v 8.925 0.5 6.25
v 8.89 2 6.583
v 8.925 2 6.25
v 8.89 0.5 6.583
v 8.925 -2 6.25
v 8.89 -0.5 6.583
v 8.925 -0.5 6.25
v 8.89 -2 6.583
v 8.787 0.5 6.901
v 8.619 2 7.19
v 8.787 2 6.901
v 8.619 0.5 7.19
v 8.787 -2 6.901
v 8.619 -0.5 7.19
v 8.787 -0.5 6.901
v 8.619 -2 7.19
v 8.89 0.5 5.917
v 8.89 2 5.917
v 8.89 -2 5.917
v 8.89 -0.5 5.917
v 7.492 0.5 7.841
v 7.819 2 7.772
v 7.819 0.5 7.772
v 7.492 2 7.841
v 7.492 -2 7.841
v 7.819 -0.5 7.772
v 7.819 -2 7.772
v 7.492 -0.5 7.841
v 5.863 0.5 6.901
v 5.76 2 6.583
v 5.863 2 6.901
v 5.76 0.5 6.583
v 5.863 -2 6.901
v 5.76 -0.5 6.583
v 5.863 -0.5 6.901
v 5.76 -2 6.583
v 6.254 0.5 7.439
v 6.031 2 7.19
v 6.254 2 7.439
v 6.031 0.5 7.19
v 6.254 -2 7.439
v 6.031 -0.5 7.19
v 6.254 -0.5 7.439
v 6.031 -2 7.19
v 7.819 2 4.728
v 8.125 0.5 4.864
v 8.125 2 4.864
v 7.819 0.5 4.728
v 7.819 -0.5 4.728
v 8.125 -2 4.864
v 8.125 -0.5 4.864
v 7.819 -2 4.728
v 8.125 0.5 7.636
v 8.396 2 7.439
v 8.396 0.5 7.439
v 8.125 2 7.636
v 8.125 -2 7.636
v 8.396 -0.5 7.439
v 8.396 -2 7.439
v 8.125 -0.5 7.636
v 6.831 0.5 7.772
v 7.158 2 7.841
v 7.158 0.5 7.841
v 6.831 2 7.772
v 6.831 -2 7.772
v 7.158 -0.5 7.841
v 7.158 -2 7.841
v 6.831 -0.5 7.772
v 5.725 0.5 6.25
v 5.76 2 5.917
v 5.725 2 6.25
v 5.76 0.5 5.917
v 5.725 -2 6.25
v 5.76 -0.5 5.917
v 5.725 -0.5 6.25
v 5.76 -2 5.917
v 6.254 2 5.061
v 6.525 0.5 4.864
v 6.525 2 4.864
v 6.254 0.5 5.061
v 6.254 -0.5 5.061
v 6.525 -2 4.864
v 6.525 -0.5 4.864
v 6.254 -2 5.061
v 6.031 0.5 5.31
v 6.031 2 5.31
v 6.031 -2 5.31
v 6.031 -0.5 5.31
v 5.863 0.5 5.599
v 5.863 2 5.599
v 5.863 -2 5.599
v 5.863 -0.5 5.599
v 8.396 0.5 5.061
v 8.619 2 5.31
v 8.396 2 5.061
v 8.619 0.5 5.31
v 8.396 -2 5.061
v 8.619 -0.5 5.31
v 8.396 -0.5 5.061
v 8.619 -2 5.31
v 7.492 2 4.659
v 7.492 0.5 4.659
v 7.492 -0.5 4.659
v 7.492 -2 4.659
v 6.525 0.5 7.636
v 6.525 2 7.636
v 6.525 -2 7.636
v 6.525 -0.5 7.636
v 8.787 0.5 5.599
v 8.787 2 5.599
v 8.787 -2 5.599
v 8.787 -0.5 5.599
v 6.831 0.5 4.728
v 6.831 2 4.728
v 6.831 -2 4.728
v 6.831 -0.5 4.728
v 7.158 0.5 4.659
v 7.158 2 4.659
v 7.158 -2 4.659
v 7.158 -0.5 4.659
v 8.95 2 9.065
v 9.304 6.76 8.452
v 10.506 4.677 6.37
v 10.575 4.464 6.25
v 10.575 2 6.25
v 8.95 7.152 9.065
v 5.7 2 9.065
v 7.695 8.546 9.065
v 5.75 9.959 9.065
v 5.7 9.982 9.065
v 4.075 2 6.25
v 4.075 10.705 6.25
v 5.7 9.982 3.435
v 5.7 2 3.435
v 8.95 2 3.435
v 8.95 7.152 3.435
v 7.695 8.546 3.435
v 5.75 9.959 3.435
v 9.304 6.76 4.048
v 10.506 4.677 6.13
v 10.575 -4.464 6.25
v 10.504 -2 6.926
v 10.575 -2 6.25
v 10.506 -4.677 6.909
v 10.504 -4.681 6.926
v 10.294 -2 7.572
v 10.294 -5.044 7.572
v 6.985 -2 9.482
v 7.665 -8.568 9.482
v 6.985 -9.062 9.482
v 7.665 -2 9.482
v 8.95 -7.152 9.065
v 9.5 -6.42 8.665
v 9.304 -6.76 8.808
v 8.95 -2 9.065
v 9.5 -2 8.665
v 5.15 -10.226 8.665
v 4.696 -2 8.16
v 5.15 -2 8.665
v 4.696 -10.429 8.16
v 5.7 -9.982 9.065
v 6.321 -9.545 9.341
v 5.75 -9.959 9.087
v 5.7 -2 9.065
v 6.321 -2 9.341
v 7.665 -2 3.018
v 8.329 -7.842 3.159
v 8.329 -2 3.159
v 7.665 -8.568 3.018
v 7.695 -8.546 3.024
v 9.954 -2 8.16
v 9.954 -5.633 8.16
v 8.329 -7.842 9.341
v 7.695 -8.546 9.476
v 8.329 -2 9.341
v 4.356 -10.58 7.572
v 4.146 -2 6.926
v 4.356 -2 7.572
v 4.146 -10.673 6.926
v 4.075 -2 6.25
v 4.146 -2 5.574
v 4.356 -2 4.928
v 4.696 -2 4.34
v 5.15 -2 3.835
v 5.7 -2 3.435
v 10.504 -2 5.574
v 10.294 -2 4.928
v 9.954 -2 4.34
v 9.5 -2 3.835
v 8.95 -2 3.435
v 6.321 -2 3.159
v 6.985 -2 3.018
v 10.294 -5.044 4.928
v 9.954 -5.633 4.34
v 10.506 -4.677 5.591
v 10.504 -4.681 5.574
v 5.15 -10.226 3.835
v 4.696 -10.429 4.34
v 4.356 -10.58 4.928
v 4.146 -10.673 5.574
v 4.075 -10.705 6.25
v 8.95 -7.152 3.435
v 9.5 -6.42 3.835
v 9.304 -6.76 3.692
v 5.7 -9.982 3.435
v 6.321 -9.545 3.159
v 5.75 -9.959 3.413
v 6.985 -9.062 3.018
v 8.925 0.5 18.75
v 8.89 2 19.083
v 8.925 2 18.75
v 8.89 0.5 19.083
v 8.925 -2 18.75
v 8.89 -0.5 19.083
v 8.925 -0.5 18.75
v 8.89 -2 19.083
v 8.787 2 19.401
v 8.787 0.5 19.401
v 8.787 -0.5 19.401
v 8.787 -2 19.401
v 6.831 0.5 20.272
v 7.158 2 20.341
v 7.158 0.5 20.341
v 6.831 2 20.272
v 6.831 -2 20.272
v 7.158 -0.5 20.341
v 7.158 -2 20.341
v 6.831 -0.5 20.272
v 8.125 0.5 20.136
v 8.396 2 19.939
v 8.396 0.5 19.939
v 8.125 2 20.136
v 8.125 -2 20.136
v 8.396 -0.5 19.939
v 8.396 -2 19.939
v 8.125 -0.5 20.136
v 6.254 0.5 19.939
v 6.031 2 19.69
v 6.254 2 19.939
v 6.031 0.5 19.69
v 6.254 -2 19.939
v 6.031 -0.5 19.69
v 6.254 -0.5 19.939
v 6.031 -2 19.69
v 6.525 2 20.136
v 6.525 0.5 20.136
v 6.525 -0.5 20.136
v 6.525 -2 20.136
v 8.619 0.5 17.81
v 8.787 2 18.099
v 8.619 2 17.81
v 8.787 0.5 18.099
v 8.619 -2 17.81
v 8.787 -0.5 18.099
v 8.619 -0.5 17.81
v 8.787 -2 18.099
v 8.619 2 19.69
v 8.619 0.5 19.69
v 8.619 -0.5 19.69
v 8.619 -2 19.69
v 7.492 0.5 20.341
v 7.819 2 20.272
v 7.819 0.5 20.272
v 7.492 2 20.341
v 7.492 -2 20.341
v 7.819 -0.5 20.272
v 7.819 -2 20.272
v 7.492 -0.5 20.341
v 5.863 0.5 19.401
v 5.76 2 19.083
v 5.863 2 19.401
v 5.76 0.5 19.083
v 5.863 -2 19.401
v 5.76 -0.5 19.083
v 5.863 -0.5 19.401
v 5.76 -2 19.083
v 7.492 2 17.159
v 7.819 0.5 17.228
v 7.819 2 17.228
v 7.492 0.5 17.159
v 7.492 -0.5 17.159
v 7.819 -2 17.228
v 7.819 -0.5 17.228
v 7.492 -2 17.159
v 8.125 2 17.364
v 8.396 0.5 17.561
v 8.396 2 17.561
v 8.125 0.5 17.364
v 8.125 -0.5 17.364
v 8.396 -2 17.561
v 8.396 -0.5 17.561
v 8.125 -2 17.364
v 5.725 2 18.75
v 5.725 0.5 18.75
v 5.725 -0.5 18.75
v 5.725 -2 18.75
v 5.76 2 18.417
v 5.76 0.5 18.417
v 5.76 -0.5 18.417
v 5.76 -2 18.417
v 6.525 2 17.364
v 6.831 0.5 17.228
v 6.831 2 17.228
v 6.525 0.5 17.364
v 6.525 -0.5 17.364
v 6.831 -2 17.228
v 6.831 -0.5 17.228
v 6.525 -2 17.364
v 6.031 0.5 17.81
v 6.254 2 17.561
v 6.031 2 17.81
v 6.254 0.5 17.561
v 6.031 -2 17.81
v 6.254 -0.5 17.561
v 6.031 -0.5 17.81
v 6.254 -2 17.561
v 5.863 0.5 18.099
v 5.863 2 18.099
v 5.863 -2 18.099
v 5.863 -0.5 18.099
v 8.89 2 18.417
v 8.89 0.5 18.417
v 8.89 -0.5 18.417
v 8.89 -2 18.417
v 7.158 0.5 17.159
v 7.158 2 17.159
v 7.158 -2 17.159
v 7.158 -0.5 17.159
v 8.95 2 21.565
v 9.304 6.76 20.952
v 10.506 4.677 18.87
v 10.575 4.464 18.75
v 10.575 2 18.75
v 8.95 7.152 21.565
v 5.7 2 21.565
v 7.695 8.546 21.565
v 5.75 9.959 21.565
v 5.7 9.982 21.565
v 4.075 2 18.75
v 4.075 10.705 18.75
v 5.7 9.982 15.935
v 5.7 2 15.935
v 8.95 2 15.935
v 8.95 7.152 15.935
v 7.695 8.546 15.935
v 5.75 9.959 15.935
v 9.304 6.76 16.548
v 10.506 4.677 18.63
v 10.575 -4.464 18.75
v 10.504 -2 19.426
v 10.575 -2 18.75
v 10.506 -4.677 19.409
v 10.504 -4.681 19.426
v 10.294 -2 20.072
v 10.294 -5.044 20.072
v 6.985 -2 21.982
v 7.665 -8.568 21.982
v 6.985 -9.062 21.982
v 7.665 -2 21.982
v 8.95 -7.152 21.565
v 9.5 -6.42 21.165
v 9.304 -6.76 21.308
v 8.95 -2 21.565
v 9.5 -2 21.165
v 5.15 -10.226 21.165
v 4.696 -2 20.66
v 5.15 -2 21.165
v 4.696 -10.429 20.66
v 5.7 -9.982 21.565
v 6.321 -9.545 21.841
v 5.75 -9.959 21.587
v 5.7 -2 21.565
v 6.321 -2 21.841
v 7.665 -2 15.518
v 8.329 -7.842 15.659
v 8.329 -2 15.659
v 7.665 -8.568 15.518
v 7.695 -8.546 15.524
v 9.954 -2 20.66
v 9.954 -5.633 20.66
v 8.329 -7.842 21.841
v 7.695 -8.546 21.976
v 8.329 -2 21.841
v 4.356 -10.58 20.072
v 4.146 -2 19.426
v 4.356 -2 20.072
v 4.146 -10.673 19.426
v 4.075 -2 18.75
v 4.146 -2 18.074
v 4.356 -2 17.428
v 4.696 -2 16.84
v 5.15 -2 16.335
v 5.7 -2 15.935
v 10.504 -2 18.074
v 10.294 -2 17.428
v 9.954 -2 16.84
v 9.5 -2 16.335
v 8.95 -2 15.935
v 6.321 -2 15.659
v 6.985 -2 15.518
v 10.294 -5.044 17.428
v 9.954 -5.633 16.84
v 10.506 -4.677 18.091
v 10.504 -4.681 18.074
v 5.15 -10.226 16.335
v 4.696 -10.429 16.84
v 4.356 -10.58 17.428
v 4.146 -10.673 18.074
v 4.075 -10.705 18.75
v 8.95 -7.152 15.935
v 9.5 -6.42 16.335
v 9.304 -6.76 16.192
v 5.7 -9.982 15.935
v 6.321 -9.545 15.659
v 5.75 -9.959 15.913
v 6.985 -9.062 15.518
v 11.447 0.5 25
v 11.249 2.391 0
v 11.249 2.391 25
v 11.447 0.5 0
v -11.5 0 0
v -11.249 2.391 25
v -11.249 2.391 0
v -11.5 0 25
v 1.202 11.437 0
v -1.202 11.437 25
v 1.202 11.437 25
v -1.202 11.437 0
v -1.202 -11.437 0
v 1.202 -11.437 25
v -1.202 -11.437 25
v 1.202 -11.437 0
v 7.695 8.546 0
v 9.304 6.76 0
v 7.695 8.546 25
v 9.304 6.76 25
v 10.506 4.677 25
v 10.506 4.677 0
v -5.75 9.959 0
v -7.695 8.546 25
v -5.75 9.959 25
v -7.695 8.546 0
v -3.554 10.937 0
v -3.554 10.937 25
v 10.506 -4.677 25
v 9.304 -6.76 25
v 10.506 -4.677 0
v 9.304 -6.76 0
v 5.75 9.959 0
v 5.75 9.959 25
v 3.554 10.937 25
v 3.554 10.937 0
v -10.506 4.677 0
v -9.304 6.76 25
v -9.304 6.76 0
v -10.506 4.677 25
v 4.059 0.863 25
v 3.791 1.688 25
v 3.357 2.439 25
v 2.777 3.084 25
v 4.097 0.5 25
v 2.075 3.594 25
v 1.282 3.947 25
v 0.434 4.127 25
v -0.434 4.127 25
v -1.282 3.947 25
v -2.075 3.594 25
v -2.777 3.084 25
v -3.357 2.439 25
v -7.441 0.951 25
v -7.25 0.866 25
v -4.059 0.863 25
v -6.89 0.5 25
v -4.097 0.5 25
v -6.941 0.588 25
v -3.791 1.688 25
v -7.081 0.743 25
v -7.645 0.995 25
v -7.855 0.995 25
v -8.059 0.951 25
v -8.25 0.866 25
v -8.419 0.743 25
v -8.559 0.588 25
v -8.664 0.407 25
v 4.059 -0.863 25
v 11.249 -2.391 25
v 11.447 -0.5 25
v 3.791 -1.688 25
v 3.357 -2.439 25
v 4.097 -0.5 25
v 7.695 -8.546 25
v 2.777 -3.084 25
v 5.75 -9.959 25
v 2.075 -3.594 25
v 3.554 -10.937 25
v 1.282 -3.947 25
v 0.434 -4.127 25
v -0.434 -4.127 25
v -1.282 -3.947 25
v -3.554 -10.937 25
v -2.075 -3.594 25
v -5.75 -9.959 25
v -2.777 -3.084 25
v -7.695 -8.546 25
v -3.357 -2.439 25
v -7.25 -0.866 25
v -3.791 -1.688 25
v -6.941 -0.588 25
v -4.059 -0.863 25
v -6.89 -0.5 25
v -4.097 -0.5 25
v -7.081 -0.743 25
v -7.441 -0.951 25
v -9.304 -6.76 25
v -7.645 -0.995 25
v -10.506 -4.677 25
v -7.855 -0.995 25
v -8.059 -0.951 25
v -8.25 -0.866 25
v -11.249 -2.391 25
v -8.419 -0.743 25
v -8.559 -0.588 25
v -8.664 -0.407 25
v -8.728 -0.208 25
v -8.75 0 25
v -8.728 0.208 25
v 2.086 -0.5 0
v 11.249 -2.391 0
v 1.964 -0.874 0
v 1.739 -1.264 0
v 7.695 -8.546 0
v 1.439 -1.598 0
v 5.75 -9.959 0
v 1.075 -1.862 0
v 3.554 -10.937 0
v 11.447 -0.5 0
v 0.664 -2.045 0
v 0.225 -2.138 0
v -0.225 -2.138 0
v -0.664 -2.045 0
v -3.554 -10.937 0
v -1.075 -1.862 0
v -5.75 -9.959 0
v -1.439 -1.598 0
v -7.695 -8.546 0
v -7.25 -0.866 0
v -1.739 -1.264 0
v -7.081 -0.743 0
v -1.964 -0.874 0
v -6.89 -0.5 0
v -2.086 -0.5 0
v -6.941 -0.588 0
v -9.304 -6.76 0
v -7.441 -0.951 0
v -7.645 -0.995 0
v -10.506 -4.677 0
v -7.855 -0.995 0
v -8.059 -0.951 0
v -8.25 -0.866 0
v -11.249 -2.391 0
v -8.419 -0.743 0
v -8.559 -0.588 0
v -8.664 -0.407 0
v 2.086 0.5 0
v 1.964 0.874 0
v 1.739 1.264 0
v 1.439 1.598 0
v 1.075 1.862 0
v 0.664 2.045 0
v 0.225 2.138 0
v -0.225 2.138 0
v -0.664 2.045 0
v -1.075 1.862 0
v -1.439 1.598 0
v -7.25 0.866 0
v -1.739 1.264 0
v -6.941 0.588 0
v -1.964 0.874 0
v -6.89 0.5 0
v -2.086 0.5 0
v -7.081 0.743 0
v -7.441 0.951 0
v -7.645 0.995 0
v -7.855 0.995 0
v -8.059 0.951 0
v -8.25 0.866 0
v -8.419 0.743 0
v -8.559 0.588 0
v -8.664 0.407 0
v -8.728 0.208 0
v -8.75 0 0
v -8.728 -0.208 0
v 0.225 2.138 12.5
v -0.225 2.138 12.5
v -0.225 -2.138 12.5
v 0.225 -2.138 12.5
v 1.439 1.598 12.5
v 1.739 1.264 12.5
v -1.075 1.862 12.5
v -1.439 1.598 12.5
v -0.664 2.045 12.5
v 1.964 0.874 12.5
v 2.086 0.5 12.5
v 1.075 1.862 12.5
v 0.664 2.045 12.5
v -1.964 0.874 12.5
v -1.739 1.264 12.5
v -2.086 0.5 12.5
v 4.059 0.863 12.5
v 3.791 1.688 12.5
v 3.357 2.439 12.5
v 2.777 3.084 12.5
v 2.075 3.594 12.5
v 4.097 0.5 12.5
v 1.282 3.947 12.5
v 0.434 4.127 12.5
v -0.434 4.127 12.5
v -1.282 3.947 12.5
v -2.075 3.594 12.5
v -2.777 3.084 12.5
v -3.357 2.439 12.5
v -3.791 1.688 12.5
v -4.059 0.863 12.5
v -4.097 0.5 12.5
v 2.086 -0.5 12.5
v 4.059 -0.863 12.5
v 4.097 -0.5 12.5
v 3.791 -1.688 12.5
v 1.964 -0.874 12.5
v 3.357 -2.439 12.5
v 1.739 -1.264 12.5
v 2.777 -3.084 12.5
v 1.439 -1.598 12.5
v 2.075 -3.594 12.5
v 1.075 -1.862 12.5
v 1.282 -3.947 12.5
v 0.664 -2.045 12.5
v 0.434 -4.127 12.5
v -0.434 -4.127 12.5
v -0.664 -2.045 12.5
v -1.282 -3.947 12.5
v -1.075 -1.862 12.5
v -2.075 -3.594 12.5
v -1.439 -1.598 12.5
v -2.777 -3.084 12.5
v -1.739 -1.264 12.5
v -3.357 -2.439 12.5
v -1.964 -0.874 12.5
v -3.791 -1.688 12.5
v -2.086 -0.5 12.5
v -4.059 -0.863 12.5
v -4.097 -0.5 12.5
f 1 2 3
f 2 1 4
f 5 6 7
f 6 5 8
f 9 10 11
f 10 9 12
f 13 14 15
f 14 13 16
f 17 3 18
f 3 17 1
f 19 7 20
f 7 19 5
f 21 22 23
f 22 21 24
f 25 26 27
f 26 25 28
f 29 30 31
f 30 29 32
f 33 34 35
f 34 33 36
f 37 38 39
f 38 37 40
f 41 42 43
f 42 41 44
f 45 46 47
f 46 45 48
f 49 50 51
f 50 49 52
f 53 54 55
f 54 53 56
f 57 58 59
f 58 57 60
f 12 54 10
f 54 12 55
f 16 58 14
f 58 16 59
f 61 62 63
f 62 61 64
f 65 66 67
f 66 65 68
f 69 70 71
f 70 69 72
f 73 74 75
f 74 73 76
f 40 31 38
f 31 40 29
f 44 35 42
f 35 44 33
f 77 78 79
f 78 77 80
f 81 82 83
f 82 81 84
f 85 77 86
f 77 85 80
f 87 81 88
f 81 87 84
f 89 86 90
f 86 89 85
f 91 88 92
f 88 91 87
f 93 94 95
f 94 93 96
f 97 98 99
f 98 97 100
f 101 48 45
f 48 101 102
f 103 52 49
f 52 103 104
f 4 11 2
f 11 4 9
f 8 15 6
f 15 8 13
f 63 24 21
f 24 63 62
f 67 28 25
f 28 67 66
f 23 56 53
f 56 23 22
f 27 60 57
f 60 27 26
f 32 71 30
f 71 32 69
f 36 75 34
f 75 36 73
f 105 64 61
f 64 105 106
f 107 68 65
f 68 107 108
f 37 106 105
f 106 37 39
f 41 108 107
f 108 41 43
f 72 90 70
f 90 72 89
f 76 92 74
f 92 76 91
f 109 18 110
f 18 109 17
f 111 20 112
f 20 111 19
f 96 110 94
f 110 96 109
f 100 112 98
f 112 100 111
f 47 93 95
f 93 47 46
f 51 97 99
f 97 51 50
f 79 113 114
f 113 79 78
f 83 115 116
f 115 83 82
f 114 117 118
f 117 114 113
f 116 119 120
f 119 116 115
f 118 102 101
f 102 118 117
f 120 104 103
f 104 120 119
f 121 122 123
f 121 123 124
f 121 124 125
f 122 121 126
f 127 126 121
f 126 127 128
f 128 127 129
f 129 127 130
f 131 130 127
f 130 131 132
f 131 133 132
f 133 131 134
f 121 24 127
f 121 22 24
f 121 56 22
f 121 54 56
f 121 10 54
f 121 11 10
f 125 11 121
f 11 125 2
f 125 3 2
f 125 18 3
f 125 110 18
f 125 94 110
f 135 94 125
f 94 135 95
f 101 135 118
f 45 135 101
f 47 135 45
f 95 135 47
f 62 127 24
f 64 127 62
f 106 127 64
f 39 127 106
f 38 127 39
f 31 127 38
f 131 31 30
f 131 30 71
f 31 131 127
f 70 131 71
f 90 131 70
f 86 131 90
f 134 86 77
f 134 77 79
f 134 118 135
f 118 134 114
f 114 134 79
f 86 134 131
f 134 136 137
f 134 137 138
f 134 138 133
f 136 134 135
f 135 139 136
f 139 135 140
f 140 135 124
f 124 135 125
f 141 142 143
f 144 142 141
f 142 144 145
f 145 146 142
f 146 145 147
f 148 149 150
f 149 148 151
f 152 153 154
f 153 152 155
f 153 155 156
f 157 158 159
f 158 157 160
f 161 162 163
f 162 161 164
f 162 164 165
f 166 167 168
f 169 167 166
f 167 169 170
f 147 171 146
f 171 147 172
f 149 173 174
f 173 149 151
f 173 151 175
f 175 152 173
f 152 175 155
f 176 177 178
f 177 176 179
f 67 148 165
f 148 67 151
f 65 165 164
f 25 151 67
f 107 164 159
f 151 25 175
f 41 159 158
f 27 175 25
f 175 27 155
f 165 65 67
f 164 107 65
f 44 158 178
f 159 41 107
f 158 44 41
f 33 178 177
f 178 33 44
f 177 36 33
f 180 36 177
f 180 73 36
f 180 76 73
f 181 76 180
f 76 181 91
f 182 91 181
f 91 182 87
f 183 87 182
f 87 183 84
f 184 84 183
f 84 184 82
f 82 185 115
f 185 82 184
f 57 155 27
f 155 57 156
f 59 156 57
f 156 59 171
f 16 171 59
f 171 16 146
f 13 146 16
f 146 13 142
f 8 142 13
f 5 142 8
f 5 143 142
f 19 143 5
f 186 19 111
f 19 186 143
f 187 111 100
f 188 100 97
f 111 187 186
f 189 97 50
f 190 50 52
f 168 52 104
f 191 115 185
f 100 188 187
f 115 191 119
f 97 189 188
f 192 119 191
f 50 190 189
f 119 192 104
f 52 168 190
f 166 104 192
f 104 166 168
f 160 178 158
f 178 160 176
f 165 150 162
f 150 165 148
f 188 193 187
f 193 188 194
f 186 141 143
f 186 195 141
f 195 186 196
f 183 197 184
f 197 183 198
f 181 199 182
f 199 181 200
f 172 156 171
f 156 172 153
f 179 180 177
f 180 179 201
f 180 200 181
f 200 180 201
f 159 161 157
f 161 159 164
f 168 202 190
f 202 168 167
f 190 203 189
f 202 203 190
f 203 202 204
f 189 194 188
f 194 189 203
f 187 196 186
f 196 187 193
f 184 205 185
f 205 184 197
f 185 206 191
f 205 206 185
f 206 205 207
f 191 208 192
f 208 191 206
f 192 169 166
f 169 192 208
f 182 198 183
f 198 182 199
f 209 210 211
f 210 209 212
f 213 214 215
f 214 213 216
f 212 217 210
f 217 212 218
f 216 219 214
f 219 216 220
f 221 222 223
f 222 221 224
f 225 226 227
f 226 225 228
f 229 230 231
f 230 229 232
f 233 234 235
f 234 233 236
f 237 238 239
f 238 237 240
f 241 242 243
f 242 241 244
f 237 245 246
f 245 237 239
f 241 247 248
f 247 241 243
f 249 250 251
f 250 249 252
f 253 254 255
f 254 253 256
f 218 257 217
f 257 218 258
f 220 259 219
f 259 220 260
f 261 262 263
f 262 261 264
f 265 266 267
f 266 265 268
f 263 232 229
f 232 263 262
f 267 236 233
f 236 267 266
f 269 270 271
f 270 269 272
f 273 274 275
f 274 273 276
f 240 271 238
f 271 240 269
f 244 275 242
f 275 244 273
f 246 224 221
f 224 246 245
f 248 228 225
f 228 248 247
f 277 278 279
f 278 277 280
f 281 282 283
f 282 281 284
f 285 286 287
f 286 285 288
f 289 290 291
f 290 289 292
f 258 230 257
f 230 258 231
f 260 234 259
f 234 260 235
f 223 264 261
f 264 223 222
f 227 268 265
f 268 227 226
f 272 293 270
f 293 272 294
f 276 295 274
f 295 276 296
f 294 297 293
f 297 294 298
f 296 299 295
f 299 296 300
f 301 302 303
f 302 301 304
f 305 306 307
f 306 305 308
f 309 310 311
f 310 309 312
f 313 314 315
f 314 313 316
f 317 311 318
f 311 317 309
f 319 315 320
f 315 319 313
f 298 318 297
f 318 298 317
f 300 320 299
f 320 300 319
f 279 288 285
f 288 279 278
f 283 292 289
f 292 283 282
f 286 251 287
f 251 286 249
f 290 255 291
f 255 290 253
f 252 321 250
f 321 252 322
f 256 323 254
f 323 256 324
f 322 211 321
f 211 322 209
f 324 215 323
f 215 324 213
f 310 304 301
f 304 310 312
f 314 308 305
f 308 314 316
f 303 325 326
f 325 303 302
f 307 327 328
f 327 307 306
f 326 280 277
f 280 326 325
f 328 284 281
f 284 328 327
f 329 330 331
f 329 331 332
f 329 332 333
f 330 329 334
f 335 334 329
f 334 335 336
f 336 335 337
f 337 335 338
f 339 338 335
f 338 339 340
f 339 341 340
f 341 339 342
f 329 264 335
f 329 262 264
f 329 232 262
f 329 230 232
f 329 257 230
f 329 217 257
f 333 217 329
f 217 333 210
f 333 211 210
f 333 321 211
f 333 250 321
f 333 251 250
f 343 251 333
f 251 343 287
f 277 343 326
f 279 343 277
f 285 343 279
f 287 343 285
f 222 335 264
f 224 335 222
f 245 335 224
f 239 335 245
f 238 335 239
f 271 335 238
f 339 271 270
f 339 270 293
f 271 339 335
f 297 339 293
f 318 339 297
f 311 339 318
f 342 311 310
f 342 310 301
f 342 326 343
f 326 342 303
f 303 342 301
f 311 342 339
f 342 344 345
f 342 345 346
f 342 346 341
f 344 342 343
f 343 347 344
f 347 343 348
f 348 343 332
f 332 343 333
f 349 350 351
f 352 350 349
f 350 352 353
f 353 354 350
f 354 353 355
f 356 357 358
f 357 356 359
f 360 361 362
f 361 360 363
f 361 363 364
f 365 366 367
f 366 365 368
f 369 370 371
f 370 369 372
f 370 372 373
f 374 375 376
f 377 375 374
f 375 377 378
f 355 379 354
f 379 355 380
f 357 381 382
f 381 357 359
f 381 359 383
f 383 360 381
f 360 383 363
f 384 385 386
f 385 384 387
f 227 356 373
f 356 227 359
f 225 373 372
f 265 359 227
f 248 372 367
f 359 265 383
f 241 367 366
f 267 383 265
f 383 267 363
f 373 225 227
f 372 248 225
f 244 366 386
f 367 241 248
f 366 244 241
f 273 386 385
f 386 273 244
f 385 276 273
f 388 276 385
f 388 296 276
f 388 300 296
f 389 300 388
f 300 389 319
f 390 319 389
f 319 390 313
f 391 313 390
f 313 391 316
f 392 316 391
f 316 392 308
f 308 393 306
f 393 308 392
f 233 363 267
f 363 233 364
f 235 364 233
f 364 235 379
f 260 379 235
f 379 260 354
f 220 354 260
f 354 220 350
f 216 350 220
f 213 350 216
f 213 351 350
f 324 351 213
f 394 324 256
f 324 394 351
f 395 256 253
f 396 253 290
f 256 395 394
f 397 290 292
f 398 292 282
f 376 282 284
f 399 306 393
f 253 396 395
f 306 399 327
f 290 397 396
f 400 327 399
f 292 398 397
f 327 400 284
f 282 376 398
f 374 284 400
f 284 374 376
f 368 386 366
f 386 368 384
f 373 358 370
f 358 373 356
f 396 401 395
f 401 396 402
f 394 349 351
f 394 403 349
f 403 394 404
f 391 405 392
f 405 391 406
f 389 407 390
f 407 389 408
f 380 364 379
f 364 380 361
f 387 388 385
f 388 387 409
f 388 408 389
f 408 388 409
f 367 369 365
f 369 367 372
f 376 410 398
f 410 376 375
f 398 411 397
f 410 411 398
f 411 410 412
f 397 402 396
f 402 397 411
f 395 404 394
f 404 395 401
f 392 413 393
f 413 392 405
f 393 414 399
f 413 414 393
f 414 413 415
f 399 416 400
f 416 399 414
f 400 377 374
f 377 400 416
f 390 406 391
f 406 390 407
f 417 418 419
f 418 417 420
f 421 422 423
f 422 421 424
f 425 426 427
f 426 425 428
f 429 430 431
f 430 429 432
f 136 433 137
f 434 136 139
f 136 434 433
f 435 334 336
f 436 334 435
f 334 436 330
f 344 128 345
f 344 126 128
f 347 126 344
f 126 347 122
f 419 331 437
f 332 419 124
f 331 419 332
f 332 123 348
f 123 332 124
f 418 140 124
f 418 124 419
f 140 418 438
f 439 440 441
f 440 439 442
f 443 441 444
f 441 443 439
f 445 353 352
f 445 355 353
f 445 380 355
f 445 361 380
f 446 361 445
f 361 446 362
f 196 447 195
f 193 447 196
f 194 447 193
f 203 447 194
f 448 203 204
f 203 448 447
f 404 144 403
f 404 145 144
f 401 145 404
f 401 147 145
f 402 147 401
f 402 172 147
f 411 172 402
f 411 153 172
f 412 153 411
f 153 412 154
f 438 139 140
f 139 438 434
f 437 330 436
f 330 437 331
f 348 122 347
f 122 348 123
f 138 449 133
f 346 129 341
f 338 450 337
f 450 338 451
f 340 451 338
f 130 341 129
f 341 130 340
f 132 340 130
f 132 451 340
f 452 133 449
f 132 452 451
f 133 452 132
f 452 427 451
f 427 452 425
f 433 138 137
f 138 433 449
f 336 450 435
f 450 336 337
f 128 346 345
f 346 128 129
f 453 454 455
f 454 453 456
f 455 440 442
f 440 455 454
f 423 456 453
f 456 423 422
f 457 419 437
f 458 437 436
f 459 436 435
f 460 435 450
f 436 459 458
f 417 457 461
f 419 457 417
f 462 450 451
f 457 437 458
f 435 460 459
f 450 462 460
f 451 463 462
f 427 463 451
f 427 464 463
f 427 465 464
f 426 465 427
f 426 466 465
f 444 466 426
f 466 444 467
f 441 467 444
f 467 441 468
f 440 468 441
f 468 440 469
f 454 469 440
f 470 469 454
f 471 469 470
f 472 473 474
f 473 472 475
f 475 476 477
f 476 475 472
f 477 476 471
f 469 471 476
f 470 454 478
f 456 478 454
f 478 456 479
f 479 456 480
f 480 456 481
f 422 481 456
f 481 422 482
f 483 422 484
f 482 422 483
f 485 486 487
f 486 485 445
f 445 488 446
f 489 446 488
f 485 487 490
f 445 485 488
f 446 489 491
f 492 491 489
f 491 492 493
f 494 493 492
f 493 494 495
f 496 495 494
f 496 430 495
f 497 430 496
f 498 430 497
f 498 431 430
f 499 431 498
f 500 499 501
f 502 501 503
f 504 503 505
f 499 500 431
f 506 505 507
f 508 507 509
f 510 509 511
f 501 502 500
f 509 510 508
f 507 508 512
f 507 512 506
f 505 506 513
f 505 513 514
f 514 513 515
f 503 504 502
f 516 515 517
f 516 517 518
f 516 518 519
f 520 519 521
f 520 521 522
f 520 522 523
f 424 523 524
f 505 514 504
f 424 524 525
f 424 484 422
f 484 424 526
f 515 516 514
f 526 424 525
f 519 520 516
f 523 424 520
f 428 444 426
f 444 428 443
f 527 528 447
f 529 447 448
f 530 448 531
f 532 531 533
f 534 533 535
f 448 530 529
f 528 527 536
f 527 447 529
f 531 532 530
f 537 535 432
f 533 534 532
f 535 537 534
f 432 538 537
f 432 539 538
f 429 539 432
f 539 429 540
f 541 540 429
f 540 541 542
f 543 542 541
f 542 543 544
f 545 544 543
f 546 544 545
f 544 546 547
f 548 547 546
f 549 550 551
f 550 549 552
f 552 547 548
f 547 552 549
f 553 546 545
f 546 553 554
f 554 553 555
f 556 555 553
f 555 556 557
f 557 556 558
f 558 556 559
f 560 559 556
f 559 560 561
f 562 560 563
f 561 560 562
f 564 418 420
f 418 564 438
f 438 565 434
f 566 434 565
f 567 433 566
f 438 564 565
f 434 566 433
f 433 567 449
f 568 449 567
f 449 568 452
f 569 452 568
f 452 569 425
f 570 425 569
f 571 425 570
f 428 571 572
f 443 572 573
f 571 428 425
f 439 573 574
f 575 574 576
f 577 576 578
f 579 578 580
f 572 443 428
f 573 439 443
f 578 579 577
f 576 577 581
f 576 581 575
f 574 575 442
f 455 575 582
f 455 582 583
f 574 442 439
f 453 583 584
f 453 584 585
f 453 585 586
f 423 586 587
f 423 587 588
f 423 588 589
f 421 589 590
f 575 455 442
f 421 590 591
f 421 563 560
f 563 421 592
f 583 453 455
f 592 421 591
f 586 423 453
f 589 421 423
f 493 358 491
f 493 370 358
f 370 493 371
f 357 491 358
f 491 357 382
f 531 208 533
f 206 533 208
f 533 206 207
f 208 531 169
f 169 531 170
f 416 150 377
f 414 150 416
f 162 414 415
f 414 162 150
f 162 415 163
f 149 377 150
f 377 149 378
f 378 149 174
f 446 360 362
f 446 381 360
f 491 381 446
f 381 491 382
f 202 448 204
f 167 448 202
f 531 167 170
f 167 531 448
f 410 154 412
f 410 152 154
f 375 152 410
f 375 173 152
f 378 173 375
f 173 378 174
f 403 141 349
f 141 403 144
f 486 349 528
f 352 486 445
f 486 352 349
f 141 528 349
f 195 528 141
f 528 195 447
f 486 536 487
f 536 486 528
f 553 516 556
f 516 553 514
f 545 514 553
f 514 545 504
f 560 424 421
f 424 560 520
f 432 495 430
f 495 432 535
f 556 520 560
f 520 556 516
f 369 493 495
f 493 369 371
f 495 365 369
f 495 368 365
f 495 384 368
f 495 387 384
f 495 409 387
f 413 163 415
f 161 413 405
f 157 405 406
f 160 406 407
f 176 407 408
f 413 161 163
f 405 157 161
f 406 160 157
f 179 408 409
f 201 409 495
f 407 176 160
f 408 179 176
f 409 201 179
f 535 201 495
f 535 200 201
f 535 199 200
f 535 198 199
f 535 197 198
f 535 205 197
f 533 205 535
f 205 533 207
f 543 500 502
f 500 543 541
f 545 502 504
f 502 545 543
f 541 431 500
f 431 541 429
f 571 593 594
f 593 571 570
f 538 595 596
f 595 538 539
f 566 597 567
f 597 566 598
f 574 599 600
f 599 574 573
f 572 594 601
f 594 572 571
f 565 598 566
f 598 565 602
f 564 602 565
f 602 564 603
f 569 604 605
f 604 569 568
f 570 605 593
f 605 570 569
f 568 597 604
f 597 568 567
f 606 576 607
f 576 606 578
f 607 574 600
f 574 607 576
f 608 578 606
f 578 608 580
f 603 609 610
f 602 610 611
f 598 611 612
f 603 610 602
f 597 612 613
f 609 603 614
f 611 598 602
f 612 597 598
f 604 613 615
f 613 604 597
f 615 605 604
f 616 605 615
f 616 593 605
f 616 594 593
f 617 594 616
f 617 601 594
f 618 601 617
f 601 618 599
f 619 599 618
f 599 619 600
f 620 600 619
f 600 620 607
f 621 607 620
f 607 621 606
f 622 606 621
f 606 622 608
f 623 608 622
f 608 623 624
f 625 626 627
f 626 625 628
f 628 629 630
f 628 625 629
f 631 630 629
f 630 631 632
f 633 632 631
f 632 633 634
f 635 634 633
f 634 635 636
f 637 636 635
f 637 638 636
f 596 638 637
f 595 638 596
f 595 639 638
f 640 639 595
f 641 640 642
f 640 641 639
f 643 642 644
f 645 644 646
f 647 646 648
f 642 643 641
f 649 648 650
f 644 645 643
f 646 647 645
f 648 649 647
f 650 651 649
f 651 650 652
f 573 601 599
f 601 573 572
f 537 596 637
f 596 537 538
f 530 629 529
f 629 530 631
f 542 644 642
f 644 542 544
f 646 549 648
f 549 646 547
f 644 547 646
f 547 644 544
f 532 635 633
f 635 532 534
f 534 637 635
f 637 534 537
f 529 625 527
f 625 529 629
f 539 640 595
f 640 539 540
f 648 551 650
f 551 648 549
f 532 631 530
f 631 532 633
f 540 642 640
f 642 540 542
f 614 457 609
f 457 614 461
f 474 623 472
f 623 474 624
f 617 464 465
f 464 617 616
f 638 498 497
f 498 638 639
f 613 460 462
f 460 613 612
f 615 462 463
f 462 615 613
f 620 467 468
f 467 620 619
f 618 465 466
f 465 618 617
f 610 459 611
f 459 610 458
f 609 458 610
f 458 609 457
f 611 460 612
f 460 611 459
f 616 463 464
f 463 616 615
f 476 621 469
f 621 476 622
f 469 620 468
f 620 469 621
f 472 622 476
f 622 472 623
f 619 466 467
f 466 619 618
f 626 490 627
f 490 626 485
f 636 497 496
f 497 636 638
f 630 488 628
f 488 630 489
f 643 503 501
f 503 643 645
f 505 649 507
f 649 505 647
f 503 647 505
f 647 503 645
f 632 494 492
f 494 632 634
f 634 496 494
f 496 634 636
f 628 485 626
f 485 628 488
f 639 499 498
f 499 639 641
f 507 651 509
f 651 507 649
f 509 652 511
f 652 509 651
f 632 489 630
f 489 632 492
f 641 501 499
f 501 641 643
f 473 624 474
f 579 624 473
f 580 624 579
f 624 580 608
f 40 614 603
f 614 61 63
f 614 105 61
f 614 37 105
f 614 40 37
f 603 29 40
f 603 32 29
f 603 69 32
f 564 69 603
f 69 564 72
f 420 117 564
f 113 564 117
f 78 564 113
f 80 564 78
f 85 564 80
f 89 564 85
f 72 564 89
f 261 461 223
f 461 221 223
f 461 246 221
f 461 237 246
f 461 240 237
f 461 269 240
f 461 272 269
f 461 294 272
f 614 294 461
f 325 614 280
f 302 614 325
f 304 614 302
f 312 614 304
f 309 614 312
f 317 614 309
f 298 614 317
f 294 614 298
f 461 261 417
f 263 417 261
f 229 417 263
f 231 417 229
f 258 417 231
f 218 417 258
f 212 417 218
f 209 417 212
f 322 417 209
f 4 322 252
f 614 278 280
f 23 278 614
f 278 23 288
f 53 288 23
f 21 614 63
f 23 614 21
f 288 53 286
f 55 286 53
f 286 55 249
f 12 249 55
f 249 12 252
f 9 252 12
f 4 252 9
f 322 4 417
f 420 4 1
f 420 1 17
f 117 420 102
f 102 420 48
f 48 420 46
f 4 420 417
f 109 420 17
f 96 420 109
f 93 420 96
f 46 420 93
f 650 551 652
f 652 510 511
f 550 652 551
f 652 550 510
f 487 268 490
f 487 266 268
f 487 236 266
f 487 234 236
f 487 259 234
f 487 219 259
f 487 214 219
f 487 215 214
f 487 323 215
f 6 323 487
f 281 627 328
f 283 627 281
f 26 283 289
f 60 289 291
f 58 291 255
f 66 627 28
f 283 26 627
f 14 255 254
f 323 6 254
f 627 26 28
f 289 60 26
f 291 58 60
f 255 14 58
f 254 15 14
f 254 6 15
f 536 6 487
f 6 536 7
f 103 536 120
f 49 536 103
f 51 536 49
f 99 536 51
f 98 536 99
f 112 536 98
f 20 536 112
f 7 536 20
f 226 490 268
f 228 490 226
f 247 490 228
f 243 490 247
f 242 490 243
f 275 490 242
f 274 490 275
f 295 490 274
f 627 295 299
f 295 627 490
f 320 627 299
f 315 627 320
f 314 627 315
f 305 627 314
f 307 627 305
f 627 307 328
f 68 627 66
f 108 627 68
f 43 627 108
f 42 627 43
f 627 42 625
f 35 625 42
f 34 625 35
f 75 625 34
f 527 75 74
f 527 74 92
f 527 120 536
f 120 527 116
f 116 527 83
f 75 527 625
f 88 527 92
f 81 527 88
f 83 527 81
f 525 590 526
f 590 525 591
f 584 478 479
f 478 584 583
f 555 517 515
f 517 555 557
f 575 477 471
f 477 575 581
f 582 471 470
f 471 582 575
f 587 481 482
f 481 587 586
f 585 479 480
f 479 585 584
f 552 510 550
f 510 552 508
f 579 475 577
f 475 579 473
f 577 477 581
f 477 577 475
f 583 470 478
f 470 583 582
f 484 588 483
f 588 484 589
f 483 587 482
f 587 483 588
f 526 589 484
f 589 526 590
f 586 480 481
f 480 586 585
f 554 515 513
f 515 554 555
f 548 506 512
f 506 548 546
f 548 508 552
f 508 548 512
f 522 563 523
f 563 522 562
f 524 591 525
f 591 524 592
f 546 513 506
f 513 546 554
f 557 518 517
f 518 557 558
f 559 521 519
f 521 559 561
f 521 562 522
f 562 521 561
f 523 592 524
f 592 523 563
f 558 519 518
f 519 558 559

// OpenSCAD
$fn=30;

ALTO            = 25;
DIAMETRO        = 23;
MOTOR_EJE_DIAM  = 4.3;
VARILLA_DIAM    = 8.3;

TORNILLO_DIAM   = 3.2;
TORNILLO_LARGO  = DIAMETRO;
TUERCA_DIAM     = 6.5;

module z_acople()
{
    difference() {
        union() {
            cylinder(d=DIAMETRO, h=ALTO);
        }
        # cylinder(d=MOTOR_EJE_DIAM, h=ALTO/2);
        translate([0, 0, ALTO/2]) # cylinder(d=VARILLA_DIAM, h=ALTO/2);
        translate([DIAMETRO/4-2, 0, ALTO/2]) # cube([DIAMETRO, 1, ALTO], center=true);
        translate([-DIAMETRO/4-2, 0, 0]) # cylinder(d=2, h=ALTO);
        for(i=[1,3]) {
            pos_tornillo_z = DIAMETRO/2-(DIAMETRO/2-VARILLA_DIAM/2)/2 - 0.5;
            translate([pos_tornillo_z, DIAMETRO/2, ALTO*i/4]) rotate([90, 0, 0]) 
                # cylinder(d=TORNILLO_DIAM, h=TORNILLO_LARGO);
            translate([pos_tornillo_z, DIAMETRO/2, ALTO*i/4]) rotate([90, 0, 0]) 
                # cylinder(d=TUERCA_DIAM, h=DIAMETRO/2-2, $fn=6);
            translate([pos_tornillo_z, 0-2, ALTO*i/4]) rotate([90, 0, 0]) 
                # cylinder(d=TUERCA_DIAM, h=DIAMETRO/2-2);
        }
    }
}

z_acople();
